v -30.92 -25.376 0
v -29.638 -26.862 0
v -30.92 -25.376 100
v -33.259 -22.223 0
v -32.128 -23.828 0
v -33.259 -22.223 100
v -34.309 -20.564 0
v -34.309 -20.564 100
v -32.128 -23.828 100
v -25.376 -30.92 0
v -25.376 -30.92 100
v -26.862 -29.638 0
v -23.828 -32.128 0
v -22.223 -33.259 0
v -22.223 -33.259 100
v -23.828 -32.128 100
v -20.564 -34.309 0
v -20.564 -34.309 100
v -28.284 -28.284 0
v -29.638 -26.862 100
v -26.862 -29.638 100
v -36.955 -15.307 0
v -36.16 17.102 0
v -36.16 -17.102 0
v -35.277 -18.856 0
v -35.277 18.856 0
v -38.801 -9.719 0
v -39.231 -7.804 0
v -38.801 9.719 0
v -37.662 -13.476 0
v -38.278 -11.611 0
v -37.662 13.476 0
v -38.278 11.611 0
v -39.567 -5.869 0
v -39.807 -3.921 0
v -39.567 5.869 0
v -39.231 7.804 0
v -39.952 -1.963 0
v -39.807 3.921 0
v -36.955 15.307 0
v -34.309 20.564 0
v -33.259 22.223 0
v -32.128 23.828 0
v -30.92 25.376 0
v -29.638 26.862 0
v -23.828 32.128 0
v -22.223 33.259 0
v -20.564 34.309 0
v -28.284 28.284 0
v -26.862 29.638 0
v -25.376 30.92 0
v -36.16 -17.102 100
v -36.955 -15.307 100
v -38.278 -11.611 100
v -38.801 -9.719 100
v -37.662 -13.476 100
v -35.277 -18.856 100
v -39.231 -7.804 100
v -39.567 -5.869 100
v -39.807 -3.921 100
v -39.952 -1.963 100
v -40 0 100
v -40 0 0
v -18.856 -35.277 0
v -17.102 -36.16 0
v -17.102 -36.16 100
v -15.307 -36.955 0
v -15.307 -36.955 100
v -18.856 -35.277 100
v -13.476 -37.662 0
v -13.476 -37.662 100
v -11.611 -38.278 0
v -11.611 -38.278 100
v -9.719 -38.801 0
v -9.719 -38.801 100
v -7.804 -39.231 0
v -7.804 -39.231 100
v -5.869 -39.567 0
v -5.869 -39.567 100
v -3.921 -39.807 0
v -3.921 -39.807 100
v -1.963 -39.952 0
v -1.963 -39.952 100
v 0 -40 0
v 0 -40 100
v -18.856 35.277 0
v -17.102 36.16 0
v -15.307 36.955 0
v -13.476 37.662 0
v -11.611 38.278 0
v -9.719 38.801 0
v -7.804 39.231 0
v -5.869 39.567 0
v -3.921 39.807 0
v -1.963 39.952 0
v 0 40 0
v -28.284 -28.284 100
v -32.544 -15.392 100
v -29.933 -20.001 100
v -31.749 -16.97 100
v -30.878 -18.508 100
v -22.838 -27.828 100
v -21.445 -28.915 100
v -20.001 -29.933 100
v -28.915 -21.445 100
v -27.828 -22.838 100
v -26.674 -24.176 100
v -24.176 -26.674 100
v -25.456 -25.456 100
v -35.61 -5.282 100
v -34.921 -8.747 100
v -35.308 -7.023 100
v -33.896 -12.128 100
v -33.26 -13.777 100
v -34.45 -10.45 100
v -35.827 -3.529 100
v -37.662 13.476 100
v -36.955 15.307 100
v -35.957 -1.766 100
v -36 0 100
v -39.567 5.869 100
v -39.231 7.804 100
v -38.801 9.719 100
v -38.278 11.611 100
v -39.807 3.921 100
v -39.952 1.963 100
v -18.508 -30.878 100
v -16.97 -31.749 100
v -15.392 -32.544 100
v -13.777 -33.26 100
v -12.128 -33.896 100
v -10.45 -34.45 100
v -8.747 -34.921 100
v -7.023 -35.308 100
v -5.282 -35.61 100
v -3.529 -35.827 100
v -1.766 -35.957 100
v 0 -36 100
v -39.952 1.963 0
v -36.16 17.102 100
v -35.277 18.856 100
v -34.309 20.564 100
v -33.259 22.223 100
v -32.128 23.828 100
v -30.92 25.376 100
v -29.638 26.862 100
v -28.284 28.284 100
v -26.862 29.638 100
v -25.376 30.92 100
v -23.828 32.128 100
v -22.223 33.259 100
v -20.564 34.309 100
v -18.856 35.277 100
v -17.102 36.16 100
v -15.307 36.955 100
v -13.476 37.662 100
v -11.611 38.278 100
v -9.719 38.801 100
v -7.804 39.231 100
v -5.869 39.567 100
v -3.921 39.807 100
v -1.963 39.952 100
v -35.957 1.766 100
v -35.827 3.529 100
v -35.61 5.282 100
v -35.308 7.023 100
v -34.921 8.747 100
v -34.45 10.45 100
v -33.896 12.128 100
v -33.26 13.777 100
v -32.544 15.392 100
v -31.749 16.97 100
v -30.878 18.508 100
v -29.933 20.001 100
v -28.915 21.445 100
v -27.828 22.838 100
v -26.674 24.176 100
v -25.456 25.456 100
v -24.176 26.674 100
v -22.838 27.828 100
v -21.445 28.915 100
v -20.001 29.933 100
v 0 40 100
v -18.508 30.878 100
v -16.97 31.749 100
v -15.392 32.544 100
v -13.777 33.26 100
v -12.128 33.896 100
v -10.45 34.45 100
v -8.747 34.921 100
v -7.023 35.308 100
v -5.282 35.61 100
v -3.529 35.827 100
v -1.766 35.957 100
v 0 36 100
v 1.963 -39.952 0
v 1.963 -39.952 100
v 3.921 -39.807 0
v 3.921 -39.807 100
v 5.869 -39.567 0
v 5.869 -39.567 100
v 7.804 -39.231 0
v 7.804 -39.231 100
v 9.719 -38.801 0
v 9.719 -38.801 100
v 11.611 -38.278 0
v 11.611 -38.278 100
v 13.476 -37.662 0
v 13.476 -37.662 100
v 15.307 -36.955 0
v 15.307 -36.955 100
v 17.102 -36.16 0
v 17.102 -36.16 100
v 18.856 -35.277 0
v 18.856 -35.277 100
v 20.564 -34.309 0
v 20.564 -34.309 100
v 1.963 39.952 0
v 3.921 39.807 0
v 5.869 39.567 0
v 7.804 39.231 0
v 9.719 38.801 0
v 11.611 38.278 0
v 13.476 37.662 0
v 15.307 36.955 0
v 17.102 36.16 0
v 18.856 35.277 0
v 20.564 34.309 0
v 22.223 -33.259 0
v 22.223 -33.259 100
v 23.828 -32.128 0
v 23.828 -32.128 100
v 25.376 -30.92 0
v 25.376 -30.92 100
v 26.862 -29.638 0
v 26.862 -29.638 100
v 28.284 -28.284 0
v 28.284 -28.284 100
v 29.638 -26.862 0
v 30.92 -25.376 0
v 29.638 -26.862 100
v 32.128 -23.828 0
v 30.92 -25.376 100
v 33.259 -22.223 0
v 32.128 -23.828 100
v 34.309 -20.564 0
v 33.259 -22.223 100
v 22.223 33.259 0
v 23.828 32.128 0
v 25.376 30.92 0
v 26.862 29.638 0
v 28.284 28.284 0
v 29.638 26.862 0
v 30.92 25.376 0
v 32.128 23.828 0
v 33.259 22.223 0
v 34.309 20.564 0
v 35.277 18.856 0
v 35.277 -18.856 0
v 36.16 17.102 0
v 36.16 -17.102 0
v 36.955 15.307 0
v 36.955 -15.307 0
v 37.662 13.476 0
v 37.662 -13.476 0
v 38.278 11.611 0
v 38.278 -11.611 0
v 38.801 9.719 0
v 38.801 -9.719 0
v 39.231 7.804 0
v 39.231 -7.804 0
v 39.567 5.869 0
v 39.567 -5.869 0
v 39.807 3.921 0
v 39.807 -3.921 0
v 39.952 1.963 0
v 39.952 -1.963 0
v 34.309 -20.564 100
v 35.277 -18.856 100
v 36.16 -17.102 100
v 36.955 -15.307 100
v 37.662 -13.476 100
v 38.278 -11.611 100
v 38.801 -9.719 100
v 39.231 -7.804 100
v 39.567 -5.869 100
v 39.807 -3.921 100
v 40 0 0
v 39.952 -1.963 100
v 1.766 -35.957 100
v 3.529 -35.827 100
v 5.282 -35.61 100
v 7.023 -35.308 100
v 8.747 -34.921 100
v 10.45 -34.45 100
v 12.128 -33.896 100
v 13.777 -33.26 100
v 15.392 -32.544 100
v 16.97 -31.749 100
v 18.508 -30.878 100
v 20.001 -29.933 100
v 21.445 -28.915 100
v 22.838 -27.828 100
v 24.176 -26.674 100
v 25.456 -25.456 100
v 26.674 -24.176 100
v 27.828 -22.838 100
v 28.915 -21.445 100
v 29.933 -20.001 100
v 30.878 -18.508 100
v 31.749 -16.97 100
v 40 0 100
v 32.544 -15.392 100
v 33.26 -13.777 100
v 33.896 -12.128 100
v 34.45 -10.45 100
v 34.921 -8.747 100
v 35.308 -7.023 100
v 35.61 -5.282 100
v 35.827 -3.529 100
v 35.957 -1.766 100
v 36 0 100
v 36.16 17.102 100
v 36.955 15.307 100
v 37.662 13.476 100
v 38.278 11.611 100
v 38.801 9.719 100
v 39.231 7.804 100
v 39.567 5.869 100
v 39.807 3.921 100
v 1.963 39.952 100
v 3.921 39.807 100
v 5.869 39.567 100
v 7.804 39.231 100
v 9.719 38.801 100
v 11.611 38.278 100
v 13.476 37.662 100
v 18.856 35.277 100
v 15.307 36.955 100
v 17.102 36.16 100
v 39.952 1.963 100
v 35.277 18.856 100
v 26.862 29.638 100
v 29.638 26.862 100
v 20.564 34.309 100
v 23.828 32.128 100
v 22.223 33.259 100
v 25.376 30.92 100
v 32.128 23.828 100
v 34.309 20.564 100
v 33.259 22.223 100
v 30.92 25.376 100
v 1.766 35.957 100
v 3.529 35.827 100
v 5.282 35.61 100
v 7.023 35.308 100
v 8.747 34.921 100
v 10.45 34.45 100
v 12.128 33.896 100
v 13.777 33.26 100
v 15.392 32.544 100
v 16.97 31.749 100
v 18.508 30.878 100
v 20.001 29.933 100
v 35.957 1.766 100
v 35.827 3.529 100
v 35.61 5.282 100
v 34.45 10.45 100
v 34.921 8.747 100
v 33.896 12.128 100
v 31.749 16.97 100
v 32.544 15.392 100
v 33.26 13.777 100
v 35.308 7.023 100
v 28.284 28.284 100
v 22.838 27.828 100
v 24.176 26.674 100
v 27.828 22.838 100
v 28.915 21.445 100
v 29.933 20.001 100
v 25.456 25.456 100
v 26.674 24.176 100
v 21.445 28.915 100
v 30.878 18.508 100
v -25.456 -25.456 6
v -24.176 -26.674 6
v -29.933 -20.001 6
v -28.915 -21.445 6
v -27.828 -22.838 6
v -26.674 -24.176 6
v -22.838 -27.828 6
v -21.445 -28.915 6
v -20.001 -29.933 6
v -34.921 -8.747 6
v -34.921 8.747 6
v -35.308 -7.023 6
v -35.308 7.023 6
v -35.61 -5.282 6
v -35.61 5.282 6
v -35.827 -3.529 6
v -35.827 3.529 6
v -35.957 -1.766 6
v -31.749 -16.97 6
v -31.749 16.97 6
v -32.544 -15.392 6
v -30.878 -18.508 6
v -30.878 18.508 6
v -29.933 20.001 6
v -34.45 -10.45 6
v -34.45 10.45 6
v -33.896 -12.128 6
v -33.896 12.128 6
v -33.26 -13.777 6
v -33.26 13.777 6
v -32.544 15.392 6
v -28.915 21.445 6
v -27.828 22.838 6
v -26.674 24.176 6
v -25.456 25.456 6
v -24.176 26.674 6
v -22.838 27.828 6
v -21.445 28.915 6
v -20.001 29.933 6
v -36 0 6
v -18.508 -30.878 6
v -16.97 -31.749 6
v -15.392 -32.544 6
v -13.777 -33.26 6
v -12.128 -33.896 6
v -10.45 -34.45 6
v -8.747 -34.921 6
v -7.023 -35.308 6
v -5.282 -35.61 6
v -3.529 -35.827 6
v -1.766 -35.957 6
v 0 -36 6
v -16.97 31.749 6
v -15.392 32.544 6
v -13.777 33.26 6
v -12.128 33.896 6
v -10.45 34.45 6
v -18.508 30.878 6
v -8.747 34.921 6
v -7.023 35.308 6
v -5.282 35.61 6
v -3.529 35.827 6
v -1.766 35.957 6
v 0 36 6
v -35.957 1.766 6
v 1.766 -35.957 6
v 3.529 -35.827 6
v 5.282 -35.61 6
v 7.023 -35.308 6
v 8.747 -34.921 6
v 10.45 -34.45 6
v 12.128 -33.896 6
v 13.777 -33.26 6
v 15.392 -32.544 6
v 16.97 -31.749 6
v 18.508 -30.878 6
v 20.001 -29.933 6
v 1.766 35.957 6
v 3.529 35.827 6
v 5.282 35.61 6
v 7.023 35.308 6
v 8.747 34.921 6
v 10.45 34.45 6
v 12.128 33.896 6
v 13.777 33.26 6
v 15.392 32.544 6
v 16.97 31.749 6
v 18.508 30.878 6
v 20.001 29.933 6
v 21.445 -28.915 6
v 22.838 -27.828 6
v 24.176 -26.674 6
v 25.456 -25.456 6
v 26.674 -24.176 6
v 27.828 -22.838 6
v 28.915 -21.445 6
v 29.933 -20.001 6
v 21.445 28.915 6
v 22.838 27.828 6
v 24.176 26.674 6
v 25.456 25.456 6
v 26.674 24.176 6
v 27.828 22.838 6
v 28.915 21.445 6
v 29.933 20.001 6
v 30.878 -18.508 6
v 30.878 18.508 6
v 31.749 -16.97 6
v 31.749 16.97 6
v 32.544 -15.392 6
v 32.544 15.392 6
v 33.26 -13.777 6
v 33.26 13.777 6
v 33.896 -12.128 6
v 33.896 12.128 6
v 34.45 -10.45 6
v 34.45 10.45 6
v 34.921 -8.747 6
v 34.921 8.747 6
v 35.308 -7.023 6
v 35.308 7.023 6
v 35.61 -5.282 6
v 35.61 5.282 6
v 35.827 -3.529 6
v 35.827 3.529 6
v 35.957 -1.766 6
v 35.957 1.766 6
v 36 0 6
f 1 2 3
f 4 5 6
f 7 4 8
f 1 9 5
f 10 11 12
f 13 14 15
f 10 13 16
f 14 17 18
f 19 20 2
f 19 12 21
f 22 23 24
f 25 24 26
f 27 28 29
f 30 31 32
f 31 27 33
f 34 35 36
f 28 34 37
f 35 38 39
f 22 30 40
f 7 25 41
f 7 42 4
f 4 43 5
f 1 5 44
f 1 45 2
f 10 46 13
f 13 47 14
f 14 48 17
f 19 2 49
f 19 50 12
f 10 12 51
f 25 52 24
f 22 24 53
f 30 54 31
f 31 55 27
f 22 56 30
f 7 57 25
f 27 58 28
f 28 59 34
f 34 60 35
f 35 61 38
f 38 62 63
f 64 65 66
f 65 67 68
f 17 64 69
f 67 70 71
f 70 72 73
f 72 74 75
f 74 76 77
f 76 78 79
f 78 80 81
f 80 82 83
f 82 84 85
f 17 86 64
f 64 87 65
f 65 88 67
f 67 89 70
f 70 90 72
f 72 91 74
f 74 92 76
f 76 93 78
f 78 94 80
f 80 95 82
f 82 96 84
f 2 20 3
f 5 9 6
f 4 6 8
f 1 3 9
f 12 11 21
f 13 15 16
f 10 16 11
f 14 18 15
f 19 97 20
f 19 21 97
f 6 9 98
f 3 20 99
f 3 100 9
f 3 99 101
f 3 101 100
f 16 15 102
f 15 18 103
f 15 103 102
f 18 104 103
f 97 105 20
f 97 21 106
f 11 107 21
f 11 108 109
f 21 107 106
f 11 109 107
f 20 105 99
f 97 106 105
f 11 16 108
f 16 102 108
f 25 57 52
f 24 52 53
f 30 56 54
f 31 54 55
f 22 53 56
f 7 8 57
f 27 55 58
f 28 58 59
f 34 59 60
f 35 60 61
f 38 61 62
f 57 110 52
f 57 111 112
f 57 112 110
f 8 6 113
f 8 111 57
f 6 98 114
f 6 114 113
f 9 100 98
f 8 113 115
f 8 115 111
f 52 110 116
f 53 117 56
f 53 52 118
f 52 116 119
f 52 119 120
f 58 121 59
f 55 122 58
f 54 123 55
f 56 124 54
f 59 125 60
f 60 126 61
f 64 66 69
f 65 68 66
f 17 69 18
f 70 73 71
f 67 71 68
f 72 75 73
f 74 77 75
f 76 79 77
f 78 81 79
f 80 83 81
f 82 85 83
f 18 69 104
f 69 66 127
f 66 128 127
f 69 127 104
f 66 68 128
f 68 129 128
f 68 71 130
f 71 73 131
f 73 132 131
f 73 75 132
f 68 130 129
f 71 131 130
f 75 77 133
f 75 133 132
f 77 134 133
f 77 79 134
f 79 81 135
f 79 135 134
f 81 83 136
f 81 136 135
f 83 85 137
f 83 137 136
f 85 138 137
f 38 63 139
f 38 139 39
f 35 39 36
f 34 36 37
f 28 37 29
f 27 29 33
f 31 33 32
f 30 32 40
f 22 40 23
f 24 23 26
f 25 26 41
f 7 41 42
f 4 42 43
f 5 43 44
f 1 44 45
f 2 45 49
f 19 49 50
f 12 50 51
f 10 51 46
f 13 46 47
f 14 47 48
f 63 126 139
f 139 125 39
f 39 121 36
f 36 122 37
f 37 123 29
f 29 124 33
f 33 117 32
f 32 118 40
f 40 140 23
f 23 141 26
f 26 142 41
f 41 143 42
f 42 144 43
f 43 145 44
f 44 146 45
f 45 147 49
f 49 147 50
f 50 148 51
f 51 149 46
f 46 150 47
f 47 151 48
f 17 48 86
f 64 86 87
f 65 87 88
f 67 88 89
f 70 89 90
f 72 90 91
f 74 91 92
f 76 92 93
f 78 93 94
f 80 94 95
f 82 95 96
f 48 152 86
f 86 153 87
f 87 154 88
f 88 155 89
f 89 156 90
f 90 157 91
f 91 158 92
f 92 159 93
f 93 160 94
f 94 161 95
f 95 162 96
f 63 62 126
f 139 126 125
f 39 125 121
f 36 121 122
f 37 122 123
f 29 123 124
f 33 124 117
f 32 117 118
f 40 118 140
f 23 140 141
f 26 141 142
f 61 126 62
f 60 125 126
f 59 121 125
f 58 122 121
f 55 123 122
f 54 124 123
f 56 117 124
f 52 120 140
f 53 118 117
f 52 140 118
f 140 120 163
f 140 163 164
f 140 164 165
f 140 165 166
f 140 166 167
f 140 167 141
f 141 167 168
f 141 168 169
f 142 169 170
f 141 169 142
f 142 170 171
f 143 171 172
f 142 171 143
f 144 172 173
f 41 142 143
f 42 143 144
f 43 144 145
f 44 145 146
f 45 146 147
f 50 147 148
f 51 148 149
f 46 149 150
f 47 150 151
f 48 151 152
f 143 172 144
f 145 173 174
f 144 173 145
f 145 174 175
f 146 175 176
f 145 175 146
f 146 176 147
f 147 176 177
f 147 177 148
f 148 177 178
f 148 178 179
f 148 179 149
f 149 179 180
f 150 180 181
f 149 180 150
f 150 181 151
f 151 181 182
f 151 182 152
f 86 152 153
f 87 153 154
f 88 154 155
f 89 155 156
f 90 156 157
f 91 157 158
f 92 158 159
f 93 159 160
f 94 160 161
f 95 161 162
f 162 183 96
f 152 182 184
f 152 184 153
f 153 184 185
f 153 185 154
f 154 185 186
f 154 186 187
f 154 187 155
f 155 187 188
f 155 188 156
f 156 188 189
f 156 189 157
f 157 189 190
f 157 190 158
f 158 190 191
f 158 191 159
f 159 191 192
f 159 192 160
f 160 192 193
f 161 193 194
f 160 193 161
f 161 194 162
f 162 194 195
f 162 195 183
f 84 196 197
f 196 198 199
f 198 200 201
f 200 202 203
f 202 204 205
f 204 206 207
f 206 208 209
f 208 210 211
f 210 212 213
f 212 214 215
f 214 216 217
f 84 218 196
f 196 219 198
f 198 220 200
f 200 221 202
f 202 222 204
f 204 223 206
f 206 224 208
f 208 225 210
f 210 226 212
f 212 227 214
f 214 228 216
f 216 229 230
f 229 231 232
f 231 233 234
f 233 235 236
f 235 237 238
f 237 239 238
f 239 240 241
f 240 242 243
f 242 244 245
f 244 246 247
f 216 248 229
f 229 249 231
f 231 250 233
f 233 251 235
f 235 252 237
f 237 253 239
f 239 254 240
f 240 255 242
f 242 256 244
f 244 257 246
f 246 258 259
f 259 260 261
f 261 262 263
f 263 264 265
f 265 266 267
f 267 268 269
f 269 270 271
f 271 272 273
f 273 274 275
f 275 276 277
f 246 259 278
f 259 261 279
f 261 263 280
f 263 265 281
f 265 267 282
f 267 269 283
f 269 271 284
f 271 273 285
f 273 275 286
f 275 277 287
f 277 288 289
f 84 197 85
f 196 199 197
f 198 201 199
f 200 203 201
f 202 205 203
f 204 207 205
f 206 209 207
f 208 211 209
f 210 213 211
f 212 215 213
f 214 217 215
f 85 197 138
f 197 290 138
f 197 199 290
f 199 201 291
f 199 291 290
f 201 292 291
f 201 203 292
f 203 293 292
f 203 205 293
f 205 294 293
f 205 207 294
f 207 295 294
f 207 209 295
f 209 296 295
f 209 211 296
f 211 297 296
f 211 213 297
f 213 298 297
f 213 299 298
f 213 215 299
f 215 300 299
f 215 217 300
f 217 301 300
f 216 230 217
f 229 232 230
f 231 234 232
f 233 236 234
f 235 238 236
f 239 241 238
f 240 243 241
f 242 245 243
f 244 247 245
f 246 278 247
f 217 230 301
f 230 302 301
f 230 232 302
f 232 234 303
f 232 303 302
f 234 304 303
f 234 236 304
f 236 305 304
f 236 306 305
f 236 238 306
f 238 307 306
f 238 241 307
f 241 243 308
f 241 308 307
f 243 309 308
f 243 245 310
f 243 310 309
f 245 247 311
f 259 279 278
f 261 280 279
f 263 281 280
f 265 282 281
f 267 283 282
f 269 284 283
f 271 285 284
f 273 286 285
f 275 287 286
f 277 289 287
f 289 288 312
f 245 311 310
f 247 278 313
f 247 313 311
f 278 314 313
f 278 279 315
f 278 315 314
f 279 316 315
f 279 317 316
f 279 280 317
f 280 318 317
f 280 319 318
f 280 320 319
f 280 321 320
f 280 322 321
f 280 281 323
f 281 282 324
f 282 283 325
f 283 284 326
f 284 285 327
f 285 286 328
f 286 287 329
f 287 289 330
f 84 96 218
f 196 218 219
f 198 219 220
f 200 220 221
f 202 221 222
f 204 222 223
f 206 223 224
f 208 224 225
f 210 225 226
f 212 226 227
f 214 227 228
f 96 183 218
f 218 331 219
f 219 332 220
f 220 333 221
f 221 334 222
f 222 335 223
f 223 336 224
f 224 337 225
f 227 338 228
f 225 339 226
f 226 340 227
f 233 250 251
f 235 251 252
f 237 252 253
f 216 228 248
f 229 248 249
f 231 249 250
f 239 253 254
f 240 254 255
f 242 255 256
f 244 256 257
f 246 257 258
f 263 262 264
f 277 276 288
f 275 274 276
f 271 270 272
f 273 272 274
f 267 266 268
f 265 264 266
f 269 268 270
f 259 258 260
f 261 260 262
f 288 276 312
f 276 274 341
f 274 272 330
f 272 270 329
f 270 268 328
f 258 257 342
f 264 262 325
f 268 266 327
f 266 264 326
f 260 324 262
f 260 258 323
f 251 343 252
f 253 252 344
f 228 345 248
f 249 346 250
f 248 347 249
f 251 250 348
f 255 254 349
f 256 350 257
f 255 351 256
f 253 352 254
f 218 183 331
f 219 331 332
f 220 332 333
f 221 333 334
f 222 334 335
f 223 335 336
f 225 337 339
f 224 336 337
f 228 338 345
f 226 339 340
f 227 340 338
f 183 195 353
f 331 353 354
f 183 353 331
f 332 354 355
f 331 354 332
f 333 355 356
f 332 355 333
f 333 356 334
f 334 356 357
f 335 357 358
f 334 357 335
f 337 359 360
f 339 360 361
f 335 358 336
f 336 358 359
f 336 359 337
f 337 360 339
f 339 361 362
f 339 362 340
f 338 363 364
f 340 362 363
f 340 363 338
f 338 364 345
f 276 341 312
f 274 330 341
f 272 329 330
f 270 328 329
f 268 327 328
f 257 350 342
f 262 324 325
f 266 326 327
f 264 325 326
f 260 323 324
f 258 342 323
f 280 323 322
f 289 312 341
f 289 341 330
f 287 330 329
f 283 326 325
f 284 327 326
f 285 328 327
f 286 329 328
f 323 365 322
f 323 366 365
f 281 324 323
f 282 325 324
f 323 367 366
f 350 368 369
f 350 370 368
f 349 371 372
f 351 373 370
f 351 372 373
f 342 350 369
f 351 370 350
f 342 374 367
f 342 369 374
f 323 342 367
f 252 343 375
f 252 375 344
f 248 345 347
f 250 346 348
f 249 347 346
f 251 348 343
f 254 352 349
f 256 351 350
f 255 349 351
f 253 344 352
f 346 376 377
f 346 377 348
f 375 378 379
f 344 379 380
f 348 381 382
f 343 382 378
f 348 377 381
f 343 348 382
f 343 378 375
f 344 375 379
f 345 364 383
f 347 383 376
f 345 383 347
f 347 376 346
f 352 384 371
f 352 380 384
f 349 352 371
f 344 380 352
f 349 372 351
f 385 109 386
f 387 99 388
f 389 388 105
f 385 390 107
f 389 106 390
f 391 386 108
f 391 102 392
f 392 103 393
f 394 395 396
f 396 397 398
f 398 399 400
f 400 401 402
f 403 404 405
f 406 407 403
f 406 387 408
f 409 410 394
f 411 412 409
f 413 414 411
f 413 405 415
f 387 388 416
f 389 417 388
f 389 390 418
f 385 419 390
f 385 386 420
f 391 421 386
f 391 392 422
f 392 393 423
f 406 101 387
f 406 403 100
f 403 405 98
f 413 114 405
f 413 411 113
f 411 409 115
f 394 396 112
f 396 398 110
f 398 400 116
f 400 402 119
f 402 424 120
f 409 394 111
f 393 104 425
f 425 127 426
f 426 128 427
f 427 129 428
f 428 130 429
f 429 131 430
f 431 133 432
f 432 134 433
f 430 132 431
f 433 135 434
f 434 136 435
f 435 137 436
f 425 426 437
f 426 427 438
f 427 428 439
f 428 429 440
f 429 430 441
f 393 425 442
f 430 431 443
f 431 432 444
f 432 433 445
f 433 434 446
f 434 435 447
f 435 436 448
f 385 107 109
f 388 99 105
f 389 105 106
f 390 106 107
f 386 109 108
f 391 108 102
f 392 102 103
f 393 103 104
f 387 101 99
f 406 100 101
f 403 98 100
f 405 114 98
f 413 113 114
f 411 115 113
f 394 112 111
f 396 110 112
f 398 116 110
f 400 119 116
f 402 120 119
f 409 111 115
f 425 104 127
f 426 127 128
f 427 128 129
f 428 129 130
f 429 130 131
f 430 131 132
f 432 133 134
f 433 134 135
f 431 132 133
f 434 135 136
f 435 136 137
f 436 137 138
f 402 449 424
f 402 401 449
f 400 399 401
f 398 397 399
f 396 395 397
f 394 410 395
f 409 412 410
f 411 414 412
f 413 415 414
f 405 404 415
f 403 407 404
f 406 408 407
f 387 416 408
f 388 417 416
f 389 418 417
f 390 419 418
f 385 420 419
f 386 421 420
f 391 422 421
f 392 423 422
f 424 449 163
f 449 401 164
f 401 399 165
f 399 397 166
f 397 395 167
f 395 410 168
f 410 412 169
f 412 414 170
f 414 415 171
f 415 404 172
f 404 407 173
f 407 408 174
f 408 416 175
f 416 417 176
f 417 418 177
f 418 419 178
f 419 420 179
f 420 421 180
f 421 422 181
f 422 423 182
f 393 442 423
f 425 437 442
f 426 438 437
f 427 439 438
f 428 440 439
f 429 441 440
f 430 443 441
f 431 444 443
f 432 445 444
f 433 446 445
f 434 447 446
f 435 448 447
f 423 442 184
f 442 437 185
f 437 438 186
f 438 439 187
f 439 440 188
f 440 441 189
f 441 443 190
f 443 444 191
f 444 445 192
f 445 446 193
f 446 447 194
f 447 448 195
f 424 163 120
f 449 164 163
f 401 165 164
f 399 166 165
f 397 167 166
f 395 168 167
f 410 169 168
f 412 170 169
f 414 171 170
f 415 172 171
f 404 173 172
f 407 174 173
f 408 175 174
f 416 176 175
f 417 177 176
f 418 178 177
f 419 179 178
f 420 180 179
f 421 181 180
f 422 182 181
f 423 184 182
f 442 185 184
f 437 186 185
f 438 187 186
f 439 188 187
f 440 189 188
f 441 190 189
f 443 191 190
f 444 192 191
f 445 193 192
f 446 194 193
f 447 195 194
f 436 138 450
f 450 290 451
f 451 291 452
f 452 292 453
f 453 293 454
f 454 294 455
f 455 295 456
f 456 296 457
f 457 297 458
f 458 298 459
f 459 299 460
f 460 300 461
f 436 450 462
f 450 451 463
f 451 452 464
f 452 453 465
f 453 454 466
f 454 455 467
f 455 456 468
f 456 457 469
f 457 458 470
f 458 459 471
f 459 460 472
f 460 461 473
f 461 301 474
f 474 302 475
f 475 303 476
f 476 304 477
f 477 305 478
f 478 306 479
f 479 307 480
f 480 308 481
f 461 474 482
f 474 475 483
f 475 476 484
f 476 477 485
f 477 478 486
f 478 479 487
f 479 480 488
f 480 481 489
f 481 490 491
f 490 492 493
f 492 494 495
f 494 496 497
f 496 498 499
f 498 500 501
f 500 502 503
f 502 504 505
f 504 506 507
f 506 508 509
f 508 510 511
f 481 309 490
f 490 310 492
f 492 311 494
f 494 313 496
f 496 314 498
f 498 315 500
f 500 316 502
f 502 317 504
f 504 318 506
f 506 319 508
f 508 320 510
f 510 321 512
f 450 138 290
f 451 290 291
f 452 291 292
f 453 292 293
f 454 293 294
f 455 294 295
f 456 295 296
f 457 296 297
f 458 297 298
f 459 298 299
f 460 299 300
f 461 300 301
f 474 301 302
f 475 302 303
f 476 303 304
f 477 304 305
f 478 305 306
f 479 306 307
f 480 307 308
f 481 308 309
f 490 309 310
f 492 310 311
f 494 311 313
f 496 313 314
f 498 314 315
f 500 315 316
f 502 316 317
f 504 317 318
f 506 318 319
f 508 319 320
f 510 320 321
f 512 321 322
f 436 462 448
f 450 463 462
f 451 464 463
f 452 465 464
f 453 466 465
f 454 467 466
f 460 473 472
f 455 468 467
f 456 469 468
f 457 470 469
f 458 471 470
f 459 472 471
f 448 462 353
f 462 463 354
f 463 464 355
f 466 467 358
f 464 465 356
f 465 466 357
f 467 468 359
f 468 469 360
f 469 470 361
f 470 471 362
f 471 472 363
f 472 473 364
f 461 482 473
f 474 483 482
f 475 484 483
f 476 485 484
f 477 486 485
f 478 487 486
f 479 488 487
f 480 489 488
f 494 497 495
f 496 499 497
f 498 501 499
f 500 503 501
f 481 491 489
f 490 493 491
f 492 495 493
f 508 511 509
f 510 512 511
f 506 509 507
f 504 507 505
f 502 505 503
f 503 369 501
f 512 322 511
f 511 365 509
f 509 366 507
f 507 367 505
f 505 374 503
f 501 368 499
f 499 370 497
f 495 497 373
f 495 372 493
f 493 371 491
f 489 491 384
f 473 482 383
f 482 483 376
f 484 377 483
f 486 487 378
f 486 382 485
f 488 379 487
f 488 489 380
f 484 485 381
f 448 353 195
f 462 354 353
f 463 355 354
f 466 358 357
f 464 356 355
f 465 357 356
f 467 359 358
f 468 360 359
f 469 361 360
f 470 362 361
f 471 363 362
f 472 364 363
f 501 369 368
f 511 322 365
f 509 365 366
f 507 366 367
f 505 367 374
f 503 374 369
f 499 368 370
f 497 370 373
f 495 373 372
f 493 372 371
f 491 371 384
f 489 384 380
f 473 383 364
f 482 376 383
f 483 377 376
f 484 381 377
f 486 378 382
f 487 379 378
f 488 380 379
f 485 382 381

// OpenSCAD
$fn = 128;

outer_d = 80;
H = 100;
wall = 4;
bottom_t = 6;
inner_d = outer_d - 2 * wall;

handle_major = 12;
handle_minor = 3;
handle_x = outer_d / 2 + handle_major;

module torus(R, r) {
    rotate_extrude(angle = 360) {
        circle(d = 2 * r, center = [R, 0]);
    }
}

module cup() {
    difference() {
        cylinder(d = outer_d, h = H);
        translate([0, 0, bottom_t]) {
            cylinder(d = inner_d, h = H);
        }
    }
}

module handle() {
    translate([handle_x, 0, H / 2]) {
        rotate([90, 0, 0]) {
            torus(handle_major, handle_minor);
        }
    }
}

union() {
    cup();
    handle();
}
